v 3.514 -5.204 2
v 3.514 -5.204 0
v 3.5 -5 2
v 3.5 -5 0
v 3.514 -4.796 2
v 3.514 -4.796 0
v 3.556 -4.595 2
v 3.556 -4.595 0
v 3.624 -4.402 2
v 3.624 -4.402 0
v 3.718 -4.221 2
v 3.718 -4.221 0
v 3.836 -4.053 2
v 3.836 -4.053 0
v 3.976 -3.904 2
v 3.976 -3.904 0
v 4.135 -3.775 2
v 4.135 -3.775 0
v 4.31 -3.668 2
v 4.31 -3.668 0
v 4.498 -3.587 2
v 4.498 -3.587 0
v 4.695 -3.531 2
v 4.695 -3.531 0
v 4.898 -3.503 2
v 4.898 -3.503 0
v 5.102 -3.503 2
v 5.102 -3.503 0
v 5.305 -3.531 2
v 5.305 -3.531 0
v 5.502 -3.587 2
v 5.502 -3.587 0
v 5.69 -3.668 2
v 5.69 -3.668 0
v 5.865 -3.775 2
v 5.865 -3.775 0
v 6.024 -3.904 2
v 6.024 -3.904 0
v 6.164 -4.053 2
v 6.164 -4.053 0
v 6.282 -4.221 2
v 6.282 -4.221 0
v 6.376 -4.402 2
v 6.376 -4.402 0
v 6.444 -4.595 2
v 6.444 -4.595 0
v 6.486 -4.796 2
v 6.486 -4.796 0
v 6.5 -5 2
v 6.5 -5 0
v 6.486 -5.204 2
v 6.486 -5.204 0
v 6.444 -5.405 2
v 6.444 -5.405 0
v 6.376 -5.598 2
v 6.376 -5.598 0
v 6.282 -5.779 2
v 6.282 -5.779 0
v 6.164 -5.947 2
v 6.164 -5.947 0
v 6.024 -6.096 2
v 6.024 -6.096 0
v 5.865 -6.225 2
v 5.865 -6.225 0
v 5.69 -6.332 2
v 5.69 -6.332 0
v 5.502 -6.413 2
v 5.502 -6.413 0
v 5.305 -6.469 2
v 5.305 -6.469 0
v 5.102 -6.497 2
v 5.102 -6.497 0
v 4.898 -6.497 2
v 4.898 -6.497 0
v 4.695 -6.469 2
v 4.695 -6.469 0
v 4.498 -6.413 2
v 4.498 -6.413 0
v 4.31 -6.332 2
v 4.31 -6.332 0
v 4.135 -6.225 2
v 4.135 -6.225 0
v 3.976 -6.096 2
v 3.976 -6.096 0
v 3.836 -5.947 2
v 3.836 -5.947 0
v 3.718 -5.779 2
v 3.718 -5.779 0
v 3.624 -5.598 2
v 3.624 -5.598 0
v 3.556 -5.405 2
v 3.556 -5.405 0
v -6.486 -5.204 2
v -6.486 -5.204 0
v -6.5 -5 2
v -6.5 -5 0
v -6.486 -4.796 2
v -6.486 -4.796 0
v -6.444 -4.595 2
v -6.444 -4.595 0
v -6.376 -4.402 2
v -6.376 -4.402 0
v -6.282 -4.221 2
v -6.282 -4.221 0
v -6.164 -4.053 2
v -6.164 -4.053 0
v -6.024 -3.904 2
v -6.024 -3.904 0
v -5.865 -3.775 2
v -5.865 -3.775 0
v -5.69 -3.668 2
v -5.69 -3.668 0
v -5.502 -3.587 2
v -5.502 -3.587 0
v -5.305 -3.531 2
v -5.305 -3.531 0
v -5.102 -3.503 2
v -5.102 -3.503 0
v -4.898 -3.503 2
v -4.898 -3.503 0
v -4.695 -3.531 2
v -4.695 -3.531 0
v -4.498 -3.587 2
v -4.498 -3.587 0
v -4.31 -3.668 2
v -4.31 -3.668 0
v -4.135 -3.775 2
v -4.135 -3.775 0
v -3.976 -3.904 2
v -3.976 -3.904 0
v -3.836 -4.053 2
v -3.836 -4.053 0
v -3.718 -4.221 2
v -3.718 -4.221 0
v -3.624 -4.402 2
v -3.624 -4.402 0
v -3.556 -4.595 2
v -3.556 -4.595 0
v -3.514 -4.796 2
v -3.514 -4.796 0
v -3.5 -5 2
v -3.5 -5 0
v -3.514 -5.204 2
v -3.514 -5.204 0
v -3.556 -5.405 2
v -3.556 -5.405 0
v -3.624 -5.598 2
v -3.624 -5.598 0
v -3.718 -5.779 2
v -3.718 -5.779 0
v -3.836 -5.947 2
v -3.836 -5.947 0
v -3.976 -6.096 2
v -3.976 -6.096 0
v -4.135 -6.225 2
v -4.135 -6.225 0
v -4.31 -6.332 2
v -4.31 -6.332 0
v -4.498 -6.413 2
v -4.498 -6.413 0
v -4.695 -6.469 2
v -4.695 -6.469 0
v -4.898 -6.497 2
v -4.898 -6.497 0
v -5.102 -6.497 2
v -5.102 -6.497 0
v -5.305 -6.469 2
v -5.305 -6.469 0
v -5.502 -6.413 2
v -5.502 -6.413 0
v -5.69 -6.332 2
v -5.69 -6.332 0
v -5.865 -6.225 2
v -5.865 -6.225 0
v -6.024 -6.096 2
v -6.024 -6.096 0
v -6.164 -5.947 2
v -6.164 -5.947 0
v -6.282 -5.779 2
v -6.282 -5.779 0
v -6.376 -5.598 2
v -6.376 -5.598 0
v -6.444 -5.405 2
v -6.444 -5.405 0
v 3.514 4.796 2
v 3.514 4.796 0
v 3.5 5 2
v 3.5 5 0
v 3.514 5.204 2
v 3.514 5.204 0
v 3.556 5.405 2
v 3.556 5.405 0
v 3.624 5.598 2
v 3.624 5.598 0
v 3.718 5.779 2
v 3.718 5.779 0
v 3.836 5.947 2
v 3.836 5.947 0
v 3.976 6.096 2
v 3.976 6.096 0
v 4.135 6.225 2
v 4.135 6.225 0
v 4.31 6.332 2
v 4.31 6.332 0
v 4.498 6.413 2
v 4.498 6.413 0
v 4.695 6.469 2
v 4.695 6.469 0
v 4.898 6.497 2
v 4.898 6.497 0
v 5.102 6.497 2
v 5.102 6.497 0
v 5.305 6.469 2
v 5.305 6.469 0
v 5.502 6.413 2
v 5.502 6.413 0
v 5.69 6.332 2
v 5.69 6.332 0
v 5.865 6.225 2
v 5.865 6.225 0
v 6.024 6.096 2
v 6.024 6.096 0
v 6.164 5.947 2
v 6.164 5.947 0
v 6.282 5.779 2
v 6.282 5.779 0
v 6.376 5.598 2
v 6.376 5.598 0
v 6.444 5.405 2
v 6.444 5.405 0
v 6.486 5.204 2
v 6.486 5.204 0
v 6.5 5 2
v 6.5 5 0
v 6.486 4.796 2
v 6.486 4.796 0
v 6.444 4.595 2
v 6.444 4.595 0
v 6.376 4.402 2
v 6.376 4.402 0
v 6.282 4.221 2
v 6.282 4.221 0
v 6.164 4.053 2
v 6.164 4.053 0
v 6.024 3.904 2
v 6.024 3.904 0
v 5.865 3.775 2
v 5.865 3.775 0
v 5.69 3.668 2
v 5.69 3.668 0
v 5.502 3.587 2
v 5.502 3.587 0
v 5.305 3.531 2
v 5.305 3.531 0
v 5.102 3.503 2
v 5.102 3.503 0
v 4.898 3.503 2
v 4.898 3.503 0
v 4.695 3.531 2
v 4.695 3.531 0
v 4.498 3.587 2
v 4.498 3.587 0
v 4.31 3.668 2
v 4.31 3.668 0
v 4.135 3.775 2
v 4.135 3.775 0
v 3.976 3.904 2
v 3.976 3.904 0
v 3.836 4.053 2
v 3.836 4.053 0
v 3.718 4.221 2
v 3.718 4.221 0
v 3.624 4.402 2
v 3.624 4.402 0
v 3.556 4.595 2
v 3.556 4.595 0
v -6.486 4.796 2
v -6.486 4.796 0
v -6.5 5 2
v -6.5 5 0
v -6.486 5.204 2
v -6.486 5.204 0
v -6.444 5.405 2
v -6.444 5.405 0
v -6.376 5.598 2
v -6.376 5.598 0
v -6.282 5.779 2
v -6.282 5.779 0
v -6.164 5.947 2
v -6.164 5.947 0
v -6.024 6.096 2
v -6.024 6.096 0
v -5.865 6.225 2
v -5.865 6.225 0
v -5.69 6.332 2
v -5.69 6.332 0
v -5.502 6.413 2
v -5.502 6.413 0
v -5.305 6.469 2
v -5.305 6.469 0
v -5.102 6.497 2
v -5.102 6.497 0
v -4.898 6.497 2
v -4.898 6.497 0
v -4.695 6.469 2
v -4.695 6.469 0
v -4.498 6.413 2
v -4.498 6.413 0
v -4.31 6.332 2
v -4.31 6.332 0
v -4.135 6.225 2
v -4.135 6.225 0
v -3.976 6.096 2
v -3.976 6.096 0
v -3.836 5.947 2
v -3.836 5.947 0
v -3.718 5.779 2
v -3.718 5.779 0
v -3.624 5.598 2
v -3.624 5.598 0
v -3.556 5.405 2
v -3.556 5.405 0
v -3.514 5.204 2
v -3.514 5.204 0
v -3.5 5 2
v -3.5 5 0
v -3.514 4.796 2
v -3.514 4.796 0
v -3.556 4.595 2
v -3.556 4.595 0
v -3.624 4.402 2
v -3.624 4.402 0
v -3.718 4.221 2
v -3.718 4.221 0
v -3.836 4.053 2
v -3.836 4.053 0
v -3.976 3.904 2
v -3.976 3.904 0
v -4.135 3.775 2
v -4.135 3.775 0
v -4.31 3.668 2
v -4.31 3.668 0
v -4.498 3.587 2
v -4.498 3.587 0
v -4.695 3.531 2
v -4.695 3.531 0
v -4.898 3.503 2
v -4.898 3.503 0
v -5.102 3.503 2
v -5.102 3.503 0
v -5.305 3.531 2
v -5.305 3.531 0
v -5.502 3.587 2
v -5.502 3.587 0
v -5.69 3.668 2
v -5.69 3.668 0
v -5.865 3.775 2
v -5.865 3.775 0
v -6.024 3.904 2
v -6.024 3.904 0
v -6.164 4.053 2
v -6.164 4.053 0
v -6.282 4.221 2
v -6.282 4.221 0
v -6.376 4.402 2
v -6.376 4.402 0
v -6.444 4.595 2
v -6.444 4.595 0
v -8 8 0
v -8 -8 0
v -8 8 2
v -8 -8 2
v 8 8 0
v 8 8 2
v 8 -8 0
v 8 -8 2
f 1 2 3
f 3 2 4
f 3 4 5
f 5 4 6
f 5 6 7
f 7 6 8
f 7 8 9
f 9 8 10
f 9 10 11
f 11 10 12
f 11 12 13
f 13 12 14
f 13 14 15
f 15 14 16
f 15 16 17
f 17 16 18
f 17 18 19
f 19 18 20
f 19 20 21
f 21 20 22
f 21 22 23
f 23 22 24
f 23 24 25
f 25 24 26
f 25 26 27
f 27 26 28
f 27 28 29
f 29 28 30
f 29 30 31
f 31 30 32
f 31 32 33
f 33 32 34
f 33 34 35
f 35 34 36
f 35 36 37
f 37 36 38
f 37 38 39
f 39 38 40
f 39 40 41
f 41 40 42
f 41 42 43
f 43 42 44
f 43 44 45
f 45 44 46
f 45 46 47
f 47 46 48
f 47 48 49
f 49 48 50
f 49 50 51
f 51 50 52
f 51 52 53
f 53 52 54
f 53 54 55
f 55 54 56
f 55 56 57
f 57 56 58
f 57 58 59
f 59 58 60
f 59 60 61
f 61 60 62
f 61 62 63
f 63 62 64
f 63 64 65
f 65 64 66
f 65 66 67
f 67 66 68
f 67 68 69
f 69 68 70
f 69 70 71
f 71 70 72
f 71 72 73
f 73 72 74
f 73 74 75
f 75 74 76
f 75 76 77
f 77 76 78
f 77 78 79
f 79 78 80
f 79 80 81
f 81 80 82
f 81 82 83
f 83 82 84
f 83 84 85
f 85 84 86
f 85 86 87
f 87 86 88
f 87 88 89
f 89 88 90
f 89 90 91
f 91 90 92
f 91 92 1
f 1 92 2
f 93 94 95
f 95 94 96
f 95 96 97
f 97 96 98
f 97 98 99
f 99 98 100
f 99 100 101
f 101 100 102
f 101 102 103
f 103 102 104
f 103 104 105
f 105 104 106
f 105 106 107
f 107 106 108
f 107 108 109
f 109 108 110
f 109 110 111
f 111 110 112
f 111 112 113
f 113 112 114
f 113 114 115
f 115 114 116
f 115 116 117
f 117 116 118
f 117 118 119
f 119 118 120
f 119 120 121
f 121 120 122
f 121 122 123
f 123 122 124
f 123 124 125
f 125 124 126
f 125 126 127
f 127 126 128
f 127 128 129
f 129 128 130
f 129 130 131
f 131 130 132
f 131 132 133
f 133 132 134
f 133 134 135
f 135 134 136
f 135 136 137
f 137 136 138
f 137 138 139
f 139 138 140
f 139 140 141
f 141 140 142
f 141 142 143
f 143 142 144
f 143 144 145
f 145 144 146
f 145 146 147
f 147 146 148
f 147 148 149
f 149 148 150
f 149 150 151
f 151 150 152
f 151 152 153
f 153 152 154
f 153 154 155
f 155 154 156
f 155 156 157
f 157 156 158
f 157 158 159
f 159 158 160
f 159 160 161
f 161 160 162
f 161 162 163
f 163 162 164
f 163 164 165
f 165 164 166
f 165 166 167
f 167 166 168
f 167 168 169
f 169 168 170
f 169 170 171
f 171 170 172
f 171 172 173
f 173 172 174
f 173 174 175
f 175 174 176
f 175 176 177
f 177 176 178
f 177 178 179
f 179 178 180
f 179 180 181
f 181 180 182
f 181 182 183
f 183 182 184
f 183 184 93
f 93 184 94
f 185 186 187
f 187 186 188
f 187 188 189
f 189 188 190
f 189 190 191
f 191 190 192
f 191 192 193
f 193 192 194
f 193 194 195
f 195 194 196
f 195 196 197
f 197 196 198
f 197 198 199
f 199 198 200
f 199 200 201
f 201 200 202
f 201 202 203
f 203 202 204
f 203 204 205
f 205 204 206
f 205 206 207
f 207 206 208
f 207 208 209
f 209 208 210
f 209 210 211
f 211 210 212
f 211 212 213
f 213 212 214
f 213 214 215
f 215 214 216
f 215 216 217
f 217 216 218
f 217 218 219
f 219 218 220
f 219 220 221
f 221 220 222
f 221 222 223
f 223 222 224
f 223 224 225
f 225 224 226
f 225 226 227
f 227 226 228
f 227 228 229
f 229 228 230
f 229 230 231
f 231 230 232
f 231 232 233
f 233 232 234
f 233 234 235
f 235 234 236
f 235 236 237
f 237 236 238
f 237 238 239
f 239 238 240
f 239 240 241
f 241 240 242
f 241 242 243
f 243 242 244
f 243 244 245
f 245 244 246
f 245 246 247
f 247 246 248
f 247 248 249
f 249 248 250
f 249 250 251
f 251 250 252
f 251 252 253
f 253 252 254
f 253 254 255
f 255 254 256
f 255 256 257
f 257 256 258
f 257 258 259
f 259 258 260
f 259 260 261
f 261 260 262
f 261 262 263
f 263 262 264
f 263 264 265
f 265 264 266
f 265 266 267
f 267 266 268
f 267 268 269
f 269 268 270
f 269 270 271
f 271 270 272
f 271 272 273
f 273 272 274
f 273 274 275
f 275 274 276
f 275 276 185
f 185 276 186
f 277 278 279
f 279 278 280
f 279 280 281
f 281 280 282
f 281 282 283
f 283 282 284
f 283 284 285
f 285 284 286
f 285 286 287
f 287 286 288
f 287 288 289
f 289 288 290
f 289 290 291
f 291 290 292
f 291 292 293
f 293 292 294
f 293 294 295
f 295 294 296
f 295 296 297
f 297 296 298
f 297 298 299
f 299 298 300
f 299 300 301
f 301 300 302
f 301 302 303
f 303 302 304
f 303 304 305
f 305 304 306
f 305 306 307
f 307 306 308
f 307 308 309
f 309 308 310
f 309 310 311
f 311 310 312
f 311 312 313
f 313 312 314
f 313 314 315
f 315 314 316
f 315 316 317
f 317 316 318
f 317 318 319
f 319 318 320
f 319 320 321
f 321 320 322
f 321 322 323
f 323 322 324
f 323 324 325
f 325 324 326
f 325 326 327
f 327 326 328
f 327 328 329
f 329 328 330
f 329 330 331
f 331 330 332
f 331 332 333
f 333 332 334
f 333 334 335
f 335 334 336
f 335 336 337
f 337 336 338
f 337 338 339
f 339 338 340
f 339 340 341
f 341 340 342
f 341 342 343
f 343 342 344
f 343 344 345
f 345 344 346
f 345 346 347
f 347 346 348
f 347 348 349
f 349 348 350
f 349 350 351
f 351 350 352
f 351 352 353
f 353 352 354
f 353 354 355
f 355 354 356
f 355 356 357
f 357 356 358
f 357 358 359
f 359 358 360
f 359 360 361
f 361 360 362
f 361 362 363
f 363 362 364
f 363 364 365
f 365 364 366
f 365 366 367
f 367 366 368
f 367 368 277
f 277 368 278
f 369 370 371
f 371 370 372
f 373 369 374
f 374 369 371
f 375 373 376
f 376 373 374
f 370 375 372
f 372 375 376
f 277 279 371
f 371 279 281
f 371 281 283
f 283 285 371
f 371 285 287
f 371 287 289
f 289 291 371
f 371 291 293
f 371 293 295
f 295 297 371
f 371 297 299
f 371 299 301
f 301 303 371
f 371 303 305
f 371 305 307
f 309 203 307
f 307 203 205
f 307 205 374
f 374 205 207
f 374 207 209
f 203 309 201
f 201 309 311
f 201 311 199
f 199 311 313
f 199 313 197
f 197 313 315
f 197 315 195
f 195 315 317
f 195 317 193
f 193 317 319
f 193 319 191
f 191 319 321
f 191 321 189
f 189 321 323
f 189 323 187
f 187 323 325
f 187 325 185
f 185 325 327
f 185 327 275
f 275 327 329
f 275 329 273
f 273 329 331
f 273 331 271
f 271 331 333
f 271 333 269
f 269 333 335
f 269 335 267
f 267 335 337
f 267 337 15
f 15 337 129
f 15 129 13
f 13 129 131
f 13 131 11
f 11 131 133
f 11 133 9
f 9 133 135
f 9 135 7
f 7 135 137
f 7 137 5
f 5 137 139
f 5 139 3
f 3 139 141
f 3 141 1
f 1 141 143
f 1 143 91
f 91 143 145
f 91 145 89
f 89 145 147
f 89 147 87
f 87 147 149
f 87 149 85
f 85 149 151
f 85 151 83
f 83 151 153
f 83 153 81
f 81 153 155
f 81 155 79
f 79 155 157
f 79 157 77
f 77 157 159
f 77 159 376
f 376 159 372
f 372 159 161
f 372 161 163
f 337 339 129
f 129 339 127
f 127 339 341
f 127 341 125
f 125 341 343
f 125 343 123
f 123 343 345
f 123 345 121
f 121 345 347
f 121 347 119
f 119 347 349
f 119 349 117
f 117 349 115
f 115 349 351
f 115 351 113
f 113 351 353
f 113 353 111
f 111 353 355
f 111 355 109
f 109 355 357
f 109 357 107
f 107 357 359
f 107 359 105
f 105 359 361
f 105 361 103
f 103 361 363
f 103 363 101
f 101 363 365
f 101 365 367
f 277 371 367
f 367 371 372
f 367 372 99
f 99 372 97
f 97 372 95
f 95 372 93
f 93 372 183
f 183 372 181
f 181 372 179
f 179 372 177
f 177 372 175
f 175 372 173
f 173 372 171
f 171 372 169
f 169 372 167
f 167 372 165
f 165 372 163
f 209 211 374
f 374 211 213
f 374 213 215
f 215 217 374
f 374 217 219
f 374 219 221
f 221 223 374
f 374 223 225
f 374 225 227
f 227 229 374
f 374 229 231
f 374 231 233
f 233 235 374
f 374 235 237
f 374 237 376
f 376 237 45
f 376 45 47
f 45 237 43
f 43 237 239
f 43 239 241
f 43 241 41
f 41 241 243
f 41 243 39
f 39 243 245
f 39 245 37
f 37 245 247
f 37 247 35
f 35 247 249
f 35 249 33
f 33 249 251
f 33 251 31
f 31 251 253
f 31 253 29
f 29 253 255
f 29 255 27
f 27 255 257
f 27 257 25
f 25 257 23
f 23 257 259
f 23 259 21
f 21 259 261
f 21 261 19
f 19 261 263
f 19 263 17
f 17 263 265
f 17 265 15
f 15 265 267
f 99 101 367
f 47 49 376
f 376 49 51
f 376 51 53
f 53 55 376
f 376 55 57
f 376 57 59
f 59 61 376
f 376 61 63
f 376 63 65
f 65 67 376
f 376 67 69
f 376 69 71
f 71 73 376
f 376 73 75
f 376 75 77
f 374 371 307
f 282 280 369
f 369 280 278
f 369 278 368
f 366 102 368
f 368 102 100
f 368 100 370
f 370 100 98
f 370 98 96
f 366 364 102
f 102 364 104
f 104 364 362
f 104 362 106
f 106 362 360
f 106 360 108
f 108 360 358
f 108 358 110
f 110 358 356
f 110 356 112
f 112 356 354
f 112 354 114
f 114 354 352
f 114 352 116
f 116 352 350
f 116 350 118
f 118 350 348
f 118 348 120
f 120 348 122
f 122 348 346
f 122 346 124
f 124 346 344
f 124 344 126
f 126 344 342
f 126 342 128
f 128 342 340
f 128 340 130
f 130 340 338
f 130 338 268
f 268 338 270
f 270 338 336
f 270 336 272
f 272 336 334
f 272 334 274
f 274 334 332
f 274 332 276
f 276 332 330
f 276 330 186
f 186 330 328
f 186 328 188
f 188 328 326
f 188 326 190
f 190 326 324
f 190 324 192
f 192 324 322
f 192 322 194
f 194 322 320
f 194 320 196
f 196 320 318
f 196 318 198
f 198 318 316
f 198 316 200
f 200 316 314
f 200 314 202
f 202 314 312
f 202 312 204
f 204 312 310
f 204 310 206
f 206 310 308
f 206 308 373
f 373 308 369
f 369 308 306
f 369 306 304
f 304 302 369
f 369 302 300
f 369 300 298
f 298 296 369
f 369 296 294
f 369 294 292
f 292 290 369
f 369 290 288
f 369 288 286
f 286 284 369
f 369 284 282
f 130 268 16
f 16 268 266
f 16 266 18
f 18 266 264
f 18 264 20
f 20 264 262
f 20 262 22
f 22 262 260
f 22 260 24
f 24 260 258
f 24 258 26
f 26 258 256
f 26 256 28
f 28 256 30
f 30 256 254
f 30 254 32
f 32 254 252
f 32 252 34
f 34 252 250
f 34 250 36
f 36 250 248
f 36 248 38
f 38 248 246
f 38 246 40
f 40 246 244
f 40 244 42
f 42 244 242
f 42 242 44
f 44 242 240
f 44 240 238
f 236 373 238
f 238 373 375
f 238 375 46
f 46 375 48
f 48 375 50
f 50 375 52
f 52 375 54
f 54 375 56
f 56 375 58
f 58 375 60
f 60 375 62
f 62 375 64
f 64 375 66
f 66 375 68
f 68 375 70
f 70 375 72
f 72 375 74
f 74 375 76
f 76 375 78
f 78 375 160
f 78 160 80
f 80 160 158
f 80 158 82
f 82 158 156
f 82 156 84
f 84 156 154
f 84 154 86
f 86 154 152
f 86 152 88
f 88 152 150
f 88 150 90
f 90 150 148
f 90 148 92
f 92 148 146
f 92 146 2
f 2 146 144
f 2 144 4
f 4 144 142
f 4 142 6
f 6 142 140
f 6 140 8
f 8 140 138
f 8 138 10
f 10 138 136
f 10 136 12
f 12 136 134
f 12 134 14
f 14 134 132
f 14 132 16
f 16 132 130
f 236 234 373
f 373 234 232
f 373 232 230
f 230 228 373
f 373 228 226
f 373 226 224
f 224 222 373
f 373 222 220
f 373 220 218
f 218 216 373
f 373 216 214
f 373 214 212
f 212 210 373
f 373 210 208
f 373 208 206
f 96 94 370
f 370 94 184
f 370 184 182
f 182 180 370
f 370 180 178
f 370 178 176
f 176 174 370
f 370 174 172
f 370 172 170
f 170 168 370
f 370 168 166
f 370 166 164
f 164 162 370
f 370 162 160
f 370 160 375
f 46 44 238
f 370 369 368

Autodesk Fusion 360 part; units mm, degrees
sketch "Skizze1" plane through (0, 0, 0) normal (0, 0, 1) x (1, 0, 0)
  line L0 (5, -5) -> (-5, -5)
  circle A0 centre (-5, -5) radius 1.5
  line L1 (-5, -5) -> (-5, 5)
  circle A1 centre (-5, 5) radius 1.5
  line L2 (5, 5) -> (5, -5)
  line L3 (-5, 5) -> (5, 5)
  circle A2 centre (5, 5) radius 1.5
  circle A3 centre (5, -5) radius 1.5
  line L4 (-8, 8) -> (8, 8)
  line L5 (8, 8) -> (8, -8)
  line L6 (8, -8) -> (-8, -8)
  line L7 (-8, -8) -> (-8, 8)
  dimension "d1" = 10
  dimension "d2" = 10
  dimension "d3" = 3
  dimension "d4" = 3
  dimension "d5" = 3
  dimension "d6" = 3
  dimension "d7" = 16
  dimension "d8" = 16
extrude "Extrusion1" add sketch "Skizze1" along normal blind 2 contours L0 A0 L1 A1 L2 L3 A2 A3 | L4 L5 L6 L7
